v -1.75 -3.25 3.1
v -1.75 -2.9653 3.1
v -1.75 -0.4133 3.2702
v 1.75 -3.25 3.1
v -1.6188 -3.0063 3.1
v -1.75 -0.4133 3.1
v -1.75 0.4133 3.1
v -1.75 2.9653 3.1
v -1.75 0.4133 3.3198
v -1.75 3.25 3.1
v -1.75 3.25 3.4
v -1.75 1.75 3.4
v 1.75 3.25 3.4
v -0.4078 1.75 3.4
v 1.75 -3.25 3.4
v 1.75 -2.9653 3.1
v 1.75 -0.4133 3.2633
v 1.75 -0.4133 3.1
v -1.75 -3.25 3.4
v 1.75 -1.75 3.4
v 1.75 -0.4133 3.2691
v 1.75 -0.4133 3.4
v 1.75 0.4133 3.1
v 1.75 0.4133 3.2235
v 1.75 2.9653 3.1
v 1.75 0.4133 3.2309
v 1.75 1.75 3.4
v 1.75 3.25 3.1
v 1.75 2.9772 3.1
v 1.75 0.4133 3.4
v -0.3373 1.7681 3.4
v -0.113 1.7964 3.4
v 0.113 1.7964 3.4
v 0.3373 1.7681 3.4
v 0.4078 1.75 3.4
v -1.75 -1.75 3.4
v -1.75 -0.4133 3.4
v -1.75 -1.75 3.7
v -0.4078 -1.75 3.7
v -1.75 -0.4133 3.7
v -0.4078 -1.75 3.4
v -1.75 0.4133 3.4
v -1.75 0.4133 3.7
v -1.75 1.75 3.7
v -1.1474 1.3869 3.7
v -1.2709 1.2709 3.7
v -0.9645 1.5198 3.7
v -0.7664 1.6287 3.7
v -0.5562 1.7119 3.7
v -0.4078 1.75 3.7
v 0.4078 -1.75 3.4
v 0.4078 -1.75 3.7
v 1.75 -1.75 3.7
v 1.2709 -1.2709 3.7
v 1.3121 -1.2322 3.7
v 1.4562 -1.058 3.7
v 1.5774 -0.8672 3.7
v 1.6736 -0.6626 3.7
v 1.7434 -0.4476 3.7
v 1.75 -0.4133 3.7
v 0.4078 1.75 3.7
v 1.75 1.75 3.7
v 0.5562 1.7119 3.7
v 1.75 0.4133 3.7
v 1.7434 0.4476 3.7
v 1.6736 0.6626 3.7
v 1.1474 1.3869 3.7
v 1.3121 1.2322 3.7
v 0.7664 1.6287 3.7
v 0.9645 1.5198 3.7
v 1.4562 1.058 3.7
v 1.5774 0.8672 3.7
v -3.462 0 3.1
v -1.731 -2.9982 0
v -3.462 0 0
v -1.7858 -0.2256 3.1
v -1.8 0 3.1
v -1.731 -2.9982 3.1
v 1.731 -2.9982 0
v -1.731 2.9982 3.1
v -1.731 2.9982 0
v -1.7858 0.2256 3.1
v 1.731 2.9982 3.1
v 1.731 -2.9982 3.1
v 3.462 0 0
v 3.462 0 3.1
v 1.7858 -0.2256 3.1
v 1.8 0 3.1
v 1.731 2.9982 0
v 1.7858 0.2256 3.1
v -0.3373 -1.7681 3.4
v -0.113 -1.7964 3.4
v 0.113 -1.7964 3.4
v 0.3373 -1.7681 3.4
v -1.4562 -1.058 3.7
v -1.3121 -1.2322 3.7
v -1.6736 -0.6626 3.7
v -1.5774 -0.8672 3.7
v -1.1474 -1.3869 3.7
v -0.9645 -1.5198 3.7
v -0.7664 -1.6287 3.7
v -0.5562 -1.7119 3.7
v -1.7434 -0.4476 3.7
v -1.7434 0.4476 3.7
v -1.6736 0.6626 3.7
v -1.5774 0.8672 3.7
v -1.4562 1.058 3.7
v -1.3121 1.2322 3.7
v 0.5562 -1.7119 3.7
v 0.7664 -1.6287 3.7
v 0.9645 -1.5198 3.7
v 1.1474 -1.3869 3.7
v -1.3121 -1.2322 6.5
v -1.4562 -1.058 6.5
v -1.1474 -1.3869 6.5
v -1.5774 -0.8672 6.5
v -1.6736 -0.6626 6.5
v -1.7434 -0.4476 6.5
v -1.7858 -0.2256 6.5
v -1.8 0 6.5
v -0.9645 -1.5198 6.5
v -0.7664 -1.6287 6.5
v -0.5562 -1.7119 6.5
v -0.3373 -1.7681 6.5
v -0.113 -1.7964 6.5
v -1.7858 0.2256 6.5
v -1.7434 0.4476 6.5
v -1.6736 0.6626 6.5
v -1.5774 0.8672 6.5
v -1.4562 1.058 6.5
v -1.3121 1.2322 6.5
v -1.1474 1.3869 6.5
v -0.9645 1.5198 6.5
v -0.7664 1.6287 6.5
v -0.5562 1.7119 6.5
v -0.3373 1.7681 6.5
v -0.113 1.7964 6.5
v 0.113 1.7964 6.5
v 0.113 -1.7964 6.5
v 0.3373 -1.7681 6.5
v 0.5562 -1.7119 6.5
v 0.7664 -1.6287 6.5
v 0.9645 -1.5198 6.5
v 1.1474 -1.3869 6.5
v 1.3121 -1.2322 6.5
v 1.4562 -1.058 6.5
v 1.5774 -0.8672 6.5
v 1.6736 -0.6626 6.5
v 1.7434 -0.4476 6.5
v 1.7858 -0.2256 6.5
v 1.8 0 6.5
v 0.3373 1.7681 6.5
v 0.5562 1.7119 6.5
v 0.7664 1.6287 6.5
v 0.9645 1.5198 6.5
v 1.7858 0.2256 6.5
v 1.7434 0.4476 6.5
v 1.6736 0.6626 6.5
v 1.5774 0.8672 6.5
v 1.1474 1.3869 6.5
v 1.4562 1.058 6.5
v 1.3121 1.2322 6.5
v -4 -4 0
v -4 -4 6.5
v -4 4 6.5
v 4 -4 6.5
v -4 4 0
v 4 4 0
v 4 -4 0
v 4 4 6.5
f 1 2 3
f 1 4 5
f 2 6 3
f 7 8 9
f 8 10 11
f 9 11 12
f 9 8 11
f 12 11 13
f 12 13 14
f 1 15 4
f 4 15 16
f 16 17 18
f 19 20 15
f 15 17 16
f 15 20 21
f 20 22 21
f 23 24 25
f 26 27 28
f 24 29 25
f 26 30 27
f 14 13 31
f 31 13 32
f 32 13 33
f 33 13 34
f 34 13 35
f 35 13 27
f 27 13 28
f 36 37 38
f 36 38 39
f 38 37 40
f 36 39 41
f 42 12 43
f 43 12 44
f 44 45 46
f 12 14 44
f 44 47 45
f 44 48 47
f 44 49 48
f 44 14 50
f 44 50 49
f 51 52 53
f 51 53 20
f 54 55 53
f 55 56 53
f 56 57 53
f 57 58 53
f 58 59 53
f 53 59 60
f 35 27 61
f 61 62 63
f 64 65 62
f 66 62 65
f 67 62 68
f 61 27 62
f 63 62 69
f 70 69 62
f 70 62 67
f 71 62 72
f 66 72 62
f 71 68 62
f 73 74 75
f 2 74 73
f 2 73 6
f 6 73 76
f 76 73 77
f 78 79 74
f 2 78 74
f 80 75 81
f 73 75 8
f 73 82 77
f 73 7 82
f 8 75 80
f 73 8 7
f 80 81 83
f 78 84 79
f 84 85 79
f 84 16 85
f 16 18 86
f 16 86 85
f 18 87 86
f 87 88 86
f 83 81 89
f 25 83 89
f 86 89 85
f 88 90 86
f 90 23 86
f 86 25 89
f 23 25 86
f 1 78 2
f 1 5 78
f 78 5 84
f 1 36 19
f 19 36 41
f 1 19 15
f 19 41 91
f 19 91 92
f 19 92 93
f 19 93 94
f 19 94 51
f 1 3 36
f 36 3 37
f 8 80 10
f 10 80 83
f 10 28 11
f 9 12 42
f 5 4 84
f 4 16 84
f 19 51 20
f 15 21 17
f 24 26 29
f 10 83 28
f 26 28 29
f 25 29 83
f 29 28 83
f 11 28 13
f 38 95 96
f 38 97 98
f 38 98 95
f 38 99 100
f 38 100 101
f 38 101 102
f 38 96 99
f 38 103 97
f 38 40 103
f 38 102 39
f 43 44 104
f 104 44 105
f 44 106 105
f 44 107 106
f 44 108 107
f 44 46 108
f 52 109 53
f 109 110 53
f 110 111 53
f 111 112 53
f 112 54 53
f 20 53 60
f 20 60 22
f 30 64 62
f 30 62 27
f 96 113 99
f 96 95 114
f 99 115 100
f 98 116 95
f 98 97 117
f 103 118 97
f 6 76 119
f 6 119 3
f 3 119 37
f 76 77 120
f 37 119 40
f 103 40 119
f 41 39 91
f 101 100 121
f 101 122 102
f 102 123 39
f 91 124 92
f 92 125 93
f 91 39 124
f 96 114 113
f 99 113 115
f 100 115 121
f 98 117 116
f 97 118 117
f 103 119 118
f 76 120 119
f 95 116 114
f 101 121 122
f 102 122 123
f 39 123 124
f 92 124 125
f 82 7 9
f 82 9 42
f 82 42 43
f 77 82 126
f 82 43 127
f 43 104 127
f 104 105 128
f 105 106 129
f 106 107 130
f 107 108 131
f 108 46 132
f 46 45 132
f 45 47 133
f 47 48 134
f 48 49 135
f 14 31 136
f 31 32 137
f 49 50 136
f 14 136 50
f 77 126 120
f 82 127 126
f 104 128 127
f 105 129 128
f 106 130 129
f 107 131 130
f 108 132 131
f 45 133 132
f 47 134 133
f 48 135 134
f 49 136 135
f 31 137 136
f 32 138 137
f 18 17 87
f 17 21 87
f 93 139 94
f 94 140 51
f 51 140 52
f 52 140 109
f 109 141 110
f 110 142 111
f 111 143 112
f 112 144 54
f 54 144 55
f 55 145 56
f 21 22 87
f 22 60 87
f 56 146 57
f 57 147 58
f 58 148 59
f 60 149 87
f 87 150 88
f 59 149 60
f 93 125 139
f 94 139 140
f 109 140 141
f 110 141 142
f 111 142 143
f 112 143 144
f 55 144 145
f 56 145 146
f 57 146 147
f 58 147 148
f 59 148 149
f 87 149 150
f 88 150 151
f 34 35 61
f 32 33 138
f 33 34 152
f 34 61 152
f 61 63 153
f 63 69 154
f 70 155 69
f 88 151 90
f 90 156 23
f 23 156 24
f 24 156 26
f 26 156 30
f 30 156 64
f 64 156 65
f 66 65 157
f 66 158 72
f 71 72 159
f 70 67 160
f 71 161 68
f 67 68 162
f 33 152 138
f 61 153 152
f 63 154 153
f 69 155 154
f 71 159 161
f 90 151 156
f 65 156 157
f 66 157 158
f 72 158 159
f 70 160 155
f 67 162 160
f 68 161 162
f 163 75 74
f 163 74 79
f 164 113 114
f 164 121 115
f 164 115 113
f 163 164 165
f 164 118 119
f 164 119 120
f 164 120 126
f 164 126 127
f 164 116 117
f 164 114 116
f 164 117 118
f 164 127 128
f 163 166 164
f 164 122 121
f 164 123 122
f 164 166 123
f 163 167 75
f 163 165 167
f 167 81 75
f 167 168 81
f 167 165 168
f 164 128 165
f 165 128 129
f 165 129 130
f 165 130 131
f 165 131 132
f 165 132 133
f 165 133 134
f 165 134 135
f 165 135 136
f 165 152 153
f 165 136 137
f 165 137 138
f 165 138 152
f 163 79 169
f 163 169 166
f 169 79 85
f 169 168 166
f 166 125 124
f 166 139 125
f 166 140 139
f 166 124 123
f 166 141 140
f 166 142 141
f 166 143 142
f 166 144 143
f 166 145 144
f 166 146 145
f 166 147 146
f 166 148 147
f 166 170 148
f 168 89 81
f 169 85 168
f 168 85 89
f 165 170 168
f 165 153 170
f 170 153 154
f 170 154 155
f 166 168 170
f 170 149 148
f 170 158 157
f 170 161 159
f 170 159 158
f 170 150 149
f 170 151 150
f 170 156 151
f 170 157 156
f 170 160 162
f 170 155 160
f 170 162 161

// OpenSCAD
$fn = 50;

difference() {
	union() {
		translate(v = [22.5, 7.5, 9.5]) {
			rotate(a = [0, 0, 0]) {
				difference() {
					union() {
						translate(v = [-26.5, -11.5, -9.5]) {
							cube(size = [8, 8, 6.5]);
						}
					}
					union() {
						translate(v = [-22.5, -7.5, -9.6]) {
							rotate(a = [0, 0, 0]) {
								difference() {
									union() {
										translate(v = [-1.75, -3.25, -0.3]) {
											cube(size = [3.5, 6.5, 0.3]);
										}
										translate(v = [-1.75, -1.75, -0.6]) {
											cube(size = [3.5, 3.5, 0.3]);
										}
										translate(v = [-1.75, -3.25, 3.2]) {
											cube(size = [3.5, 6.5, 0.3]);
										}
										translate(v = [-1.75, -1.75, 3.5]) {
											cube(size = [3.5, 3.5, 0.3]);
										}
										linear_extrude(height = 3.2) {
											polygon(points = [[3.4619999999999997, 0.0], [1.7310000000000003, 2.9981799479017264], [-1.7309999999999992, 2.9981799479017264], [-3.4619999999999997, 4.2397272186481365e-16], [-1.7310000000000014, -2.998179947901726], [1.7309999999999977, -2.9981799479017277]]);
										}
										translate(v = [-1.75, -3.25, -0.3]) {
											cube(size = [3.5, 6.5, 0.3]);
										}
										translate(v = [-1.75, -1.75, -0.6]) {
											cube(size = [3.5, 3.5, 0.3]);
										}
										translate(v = [-1.75, -3.25, 3.2]) {
											cube(size = [3.5, 6.5, 0.3]);
										}
										translate(v = [-1.75, -1.75, 3.5]) {
											cube(size = [3.5, 3.5, 0.3]);
										}
										translate(v = [-1.75, -3.25, -0.3]) {
											cube(size = [3.5, 6.5, 0.3]);
										}
										translate(v = [-1.75, -1.75, -0.6]) {
											cube(size = [3.5, 3.5, 0.3]);
										}
										translate(v = [-1.75, -3.25, 3.2]) {
											cube(size = [3.5, 6.5, 0.3]);
										}
										translate(v = [-1.75, -1.75, 3.5]) {
											cube(size = [3.5, 3.5, 0.3]);
										}
									}
									union();
								}
							}
						}
						translate(v = [-22.5, -7.5, -9.6]) {
							cylinder(h = 6.7, r = 1.8);
						}
					}
				}
			}
		}
	}
	union();
}
